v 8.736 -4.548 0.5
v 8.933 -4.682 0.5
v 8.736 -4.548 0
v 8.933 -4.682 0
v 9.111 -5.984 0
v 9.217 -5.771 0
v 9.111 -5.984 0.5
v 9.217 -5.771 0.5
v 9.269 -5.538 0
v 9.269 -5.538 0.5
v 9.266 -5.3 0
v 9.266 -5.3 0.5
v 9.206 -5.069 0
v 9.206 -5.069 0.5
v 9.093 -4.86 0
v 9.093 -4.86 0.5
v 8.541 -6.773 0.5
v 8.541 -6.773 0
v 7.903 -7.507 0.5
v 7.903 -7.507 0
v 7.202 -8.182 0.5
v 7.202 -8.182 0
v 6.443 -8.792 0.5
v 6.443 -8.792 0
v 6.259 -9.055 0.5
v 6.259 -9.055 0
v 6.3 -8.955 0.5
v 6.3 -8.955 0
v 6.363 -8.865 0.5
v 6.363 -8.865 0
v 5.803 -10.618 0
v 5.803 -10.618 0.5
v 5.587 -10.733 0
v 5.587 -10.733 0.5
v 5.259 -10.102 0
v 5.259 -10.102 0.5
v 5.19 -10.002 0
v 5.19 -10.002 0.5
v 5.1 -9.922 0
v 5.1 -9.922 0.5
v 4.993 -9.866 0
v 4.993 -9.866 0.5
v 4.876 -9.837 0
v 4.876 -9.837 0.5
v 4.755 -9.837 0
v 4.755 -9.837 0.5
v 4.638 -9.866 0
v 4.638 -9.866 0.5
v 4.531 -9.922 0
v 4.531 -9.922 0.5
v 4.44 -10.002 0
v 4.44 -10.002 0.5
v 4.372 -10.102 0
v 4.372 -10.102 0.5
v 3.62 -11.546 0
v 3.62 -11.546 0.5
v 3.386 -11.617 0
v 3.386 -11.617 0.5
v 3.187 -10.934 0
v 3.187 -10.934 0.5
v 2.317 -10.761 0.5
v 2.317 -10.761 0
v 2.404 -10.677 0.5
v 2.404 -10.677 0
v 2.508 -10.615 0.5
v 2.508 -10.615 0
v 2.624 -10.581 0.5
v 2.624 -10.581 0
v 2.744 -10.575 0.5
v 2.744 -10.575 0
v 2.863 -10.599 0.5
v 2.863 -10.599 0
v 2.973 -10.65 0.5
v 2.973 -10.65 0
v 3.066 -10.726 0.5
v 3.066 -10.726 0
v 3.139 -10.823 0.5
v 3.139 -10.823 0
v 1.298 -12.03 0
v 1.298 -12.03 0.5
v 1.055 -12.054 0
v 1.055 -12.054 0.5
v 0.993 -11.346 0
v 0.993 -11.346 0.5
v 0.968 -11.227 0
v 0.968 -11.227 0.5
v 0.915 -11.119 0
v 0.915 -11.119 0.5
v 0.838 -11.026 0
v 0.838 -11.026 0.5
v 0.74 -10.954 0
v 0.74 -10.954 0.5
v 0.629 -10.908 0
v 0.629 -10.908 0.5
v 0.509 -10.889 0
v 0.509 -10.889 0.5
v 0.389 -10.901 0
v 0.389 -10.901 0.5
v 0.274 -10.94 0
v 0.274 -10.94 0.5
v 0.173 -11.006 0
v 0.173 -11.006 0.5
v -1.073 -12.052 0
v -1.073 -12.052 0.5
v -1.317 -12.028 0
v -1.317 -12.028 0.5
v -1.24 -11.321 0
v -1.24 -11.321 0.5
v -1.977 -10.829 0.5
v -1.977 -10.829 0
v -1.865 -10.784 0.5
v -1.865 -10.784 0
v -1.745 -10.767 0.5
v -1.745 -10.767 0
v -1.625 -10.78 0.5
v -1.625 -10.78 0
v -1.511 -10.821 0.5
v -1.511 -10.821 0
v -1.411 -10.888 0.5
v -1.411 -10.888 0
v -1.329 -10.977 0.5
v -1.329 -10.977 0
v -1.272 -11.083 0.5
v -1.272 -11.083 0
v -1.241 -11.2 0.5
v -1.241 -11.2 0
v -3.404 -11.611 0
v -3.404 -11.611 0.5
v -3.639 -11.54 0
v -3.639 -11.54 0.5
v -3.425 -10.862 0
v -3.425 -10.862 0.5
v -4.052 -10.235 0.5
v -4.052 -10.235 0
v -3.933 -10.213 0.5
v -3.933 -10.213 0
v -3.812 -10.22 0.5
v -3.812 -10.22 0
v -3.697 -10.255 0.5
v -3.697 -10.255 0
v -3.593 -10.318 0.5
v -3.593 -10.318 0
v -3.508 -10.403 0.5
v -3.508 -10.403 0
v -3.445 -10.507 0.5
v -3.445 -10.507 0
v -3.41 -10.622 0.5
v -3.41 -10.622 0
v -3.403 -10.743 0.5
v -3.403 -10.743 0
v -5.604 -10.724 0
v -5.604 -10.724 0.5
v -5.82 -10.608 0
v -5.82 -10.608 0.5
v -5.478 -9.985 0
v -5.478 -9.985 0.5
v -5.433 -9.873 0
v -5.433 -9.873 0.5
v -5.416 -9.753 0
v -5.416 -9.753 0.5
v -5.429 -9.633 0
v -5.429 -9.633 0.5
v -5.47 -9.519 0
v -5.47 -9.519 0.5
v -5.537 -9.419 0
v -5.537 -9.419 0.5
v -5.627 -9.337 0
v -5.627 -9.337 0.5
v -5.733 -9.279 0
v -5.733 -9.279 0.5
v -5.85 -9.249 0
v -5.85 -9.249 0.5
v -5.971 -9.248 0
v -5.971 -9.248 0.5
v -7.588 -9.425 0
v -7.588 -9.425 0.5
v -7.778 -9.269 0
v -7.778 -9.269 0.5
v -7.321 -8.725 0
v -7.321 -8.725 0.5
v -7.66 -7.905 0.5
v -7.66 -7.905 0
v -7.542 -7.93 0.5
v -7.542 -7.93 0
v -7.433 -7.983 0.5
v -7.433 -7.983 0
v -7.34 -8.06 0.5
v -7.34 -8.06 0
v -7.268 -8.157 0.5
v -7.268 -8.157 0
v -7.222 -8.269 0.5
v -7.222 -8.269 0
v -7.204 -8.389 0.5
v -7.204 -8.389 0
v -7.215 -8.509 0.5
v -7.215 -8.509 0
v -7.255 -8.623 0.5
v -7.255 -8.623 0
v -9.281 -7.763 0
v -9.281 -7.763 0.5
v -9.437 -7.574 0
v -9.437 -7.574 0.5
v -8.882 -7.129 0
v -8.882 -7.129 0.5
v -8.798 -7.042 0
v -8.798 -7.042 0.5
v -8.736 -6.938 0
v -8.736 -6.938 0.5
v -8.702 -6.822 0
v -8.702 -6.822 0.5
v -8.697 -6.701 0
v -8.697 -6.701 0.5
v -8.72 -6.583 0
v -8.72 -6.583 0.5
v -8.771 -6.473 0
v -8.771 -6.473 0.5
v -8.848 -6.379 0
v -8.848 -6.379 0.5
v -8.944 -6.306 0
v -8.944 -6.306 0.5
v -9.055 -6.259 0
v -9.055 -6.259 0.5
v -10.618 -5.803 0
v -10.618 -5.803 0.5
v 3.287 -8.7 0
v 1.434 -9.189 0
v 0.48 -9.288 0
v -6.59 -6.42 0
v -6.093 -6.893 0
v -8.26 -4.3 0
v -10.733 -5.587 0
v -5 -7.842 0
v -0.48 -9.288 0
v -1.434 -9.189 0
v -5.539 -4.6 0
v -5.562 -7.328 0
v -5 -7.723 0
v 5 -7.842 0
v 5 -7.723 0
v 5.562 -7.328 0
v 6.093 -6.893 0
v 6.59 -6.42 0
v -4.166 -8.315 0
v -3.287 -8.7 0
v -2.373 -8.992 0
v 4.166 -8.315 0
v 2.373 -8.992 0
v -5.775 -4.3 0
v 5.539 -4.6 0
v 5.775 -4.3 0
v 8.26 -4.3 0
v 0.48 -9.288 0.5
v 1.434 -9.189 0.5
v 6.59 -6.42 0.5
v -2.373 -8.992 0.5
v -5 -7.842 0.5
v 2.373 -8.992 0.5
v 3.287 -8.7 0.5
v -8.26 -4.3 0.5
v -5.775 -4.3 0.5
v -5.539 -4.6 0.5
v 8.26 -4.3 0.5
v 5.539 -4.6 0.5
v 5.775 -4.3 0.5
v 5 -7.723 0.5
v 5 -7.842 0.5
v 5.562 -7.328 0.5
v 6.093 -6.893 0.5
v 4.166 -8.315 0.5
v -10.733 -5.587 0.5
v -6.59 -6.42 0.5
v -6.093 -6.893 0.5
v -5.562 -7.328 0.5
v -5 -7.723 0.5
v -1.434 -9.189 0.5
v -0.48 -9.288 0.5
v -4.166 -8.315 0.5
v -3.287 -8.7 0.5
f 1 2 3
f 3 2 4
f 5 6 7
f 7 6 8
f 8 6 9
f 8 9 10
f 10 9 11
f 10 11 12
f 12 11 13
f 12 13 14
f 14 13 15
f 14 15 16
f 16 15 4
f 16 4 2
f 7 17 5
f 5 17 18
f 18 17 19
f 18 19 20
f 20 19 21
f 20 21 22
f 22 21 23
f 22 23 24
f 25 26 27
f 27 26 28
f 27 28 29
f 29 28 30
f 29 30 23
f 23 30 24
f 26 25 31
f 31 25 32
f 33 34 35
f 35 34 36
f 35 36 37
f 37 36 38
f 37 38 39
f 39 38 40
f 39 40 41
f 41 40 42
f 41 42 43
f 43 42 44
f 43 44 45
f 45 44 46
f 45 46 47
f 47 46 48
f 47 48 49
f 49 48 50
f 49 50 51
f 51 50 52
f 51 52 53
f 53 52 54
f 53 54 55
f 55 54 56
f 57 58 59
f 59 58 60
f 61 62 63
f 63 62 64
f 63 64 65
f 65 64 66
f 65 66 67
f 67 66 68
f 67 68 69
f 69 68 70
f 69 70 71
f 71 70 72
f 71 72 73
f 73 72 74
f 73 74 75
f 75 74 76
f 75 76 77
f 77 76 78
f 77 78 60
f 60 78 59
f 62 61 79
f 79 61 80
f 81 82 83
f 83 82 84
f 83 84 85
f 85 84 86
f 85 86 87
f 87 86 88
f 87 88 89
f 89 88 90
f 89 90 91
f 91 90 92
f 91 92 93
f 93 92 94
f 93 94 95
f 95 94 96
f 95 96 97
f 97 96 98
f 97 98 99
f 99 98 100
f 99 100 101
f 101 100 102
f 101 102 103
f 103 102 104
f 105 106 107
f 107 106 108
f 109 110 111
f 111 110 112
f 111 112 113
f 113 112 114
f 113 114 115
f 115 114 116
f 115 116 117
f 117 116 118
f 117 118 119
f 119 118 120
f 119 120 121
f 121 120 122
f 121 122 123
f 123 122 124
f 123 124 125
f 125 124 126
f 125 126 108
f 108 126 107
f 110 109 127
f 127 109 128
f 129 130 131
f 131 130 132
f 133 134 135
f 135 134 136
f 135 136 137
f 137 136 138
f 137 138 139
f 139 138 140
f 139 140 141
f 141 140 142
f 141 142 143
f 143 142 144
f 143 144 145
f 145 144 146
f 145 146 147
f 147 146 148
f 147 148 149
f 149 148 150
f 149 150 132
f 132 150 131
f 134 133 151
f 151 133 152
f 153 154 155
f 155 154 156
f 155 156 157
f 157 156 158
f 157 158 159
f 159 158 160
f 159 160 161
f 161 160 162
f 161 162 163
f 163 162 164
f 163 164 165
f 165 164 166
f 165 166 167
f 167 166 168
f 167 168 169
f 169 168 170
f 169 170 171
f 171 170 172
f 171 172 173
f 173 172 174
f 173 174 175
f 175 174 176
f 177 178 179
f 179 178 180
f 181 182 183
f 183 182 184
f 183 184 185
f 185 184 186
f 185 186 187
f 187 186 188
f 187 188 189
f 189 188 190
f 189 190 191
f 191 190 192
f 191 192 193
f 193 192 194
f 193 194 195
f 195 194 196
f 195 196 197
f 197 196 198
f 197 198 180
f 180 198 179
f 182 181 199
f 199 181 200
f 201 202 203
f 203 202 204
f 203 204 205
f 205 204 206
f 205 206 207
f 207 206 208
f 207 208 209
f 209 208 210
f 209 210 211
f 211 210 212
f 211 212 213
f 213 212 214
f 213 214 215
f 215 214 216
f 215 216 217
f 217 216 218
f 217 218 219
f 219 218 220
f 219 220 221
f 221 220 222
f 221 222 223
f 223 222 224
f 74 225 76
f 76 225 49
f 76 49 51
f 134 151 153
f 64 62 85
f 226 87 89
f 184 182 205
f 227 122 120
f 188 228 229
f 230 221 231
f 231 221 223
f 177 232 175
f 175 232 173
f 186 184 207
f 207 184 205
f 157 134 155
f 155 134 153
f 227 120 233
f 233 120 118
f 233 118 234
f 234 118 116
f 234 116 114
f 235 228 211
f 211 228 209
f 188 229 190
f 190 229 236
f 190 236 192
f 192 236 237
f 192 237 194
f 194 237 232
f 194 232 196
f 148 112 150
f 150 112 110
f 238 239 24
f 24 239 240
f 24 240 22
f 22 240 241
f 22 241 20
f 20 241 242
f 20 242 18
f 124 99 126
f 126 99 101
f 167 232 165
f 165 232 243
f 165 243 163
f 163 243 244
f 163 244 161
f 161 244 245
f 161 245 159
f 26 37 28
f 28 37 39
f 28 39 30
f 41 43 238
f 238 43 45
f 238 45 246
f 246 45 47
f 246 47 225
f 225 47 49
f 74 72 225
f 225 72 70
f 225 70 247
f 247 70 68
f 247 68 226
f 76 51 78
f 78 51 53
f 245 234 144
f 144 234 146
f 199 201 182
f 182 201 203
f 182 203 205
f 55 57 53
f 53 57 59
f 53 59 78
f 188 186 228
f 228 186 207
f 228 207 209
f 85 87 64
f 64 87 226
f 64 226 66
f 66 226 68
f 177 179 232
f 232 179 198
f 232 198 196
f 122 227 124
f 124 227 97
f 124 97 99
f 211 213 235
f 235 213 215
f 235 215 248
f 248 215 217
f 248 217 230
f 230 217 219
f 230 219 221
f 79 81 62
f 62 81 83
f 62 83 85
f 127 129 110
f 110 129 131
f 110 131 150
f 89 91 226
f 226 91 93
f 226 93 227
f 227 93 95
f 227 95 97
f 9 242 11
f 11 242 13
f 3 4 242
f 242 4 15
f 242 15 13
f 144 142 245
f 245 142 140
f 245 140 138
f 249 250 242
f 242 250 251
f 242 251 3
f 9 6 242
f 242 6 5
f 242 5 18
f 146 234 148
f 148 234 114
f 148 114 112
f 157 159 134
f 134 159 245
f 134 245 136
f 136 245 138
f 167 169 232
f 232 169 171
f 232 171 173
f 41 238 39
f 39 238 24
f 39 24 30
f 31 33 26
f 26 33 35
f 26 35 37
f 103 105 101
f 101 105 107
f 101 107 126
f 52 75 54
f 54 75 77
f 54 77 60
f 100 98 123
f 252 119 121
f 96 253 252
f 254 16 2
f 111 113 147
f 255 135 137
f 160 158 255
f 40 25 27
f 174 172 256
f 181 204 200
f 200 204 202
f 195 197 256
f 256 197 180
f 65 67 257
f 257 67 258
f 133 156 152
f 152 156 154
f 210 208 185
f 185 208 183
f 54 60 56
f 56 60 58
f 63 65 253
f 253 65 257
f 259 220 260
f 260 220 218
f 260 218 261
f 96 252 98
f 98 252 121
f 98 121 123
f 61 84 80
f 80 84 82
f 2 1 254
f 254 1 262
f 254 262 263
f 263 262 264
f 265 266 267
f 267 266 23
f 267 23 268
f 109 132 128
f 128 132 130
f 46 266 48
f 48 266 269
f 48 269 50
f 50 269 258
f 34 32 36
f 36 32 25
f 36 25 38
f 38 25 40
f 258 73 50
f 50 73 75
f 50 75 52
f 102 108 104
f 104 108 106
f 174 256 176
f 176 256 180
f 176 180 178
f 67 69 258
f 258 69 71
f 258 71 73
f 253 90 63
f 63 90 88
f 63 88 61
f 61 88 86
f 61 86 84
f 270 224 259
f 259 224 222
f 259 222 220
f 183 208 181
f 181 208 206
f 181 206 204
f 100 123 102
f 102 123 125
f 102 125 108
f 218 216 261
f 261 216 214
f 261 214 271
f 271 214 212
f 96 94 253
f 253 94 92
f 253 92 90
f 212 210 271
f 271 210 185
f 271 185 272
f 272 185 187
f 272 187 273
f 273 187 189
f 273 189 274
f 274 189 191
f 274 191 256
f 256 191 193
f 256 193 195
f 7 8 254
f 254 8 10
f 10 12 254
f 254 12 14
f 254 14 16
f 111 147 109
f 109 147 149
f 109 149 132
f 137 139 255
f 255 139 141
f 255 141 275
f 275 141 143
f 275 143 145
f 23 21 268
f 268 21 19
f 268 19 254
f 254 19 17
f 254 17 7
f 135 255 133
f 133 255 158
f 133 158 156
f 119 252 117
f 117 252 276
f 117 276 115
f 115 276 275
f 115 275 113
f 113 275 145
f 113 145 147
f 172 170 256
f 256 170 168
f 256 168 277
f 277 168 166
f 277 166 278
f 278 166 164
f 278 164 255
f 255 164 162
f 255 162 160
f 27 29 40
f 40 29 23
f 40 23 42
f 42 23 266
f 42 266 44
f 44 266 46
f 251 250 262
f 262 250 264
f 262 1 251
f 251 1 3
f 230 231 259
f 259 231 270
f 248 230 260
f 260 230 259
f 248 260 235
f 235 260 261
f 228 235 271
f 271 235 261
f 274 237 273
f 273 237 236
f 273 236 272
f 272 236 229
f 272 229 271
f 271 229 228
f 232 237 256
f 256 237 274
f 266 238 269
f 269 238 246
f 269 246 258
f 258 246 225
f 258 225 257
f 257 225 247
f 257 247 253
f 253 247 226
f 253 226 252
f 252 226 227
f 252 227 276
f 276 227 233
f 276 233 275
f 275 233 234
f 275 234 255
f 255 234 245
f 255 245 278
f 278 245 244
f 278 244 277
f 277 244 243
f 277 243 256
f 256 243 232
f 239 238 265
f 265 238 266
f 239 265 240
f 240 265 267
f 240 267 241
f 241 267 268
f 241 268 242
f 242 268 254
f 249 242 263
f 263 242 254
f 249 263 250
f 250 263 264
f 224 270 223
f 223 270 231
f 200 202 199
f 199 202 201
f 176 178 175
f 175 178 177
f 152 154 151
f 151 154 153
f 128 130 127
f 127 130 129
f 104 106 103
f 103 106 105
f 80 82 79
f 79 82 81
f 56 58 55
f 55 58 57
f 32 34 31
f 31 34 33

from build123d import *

# Parameters (mm, degrees)
OTHER_10076_5_DEPTH = 0.5
CUT_EXTRUDE1_REACH  = 18.147


# Read off the part's stored shape, not the designer's step: 10076-5
with BuildPart() as part:
    # Other 10076-5 outline → Other 10076-5 (new body)
    with BuildSketch(Plane.XY):
        with BuildLine():
            ThreePointArc((7.573674013, -9.436602245), (7.668819519, -9.359444812), (7.763179028, -9.281328104))
            Line((7.763179028, -9.281328104), (7.919995926, -7.488902759))
            ThreePointArc((7.919995926, -7.488902759), (8.548470738, -6.76266575), (9.110578105, -5.983925684))
            ThreePointArc((9.110578105, -5.983925684), (9.242448569, -5.182849851), (8.736493865, -4.547930843))
            Line((8.736493865, -4.547930843), (8.260223146, -4.3))
            Line((8.260223146, -4.3), (5.774945887, -4.3))
            ThreePointArc((5.774945887, -4.3), (5.659072475, -4.451392897), (5.53923133, -4.5996648))
            Line((5.53923133, -4.5996648), (6.59, -6.419649523))
            ThreePointArc((6.59, -6.419649523), (5.831509763, -7.1157216), (5, -7.722693831))
            Line((5, -7.722693831), (5, -7.841555968))
            ThreePointArc((5, -7.841555968), (0, -9.3), (-5, -7.841555968))
            Line((-5, -7.841555968), (-5, -7.722693831))
            ThreePointArc((-5, -7.722693831), (-5.831509763, -7.1157216), (-6.59, -6.419649523))
            Line((-6.59, -6.419649523), (-5.53923133, -4.5996648))
            ThreePointArc((-5.53923133, -4.5996648), (-5.659072475, -4.451392897), (-5.774945887, -4.3))
            Line((-5.774945887, -4.3), (-8.260223146, -4.3))
            Line((-8.260223146, -4.3), (-10.732831081, -5.58715822))
            ThreePointArc((-10.732831081, -5.58715822), (-10.675718173, -5.6955282), (-10.617511084, -5.803314431))
            Line((-10.617511084, -5.803314431), (-9.055174855, -6.258693914))
            ThreePointArc((-9.055174855, -6.258693914), (-8.704696722, -6.64117368), (-8.882127626, -7.128661083))
            Line((-8.882127626, -7.128661083), (-9.436602245, -7.573674013))
            ThreePointArc((-9.436602245, -7.573674013), (-9.359444812, -7.668819519), (-9.281328104, -7.763179028))
            Line((-9.281328104, -7.763179028), (-7.660171598, -7.905011844))
            ThreePointArc((-7.660171598, -7.905011844), (-7.241809703, -8.211767477), (-7.320727248, -8.724502998))
            Line((-7.320727248, -8.724502998), (-7.777730077, -9.269137762))
            ThreePointArc((-7.777730077, -9.269137762), (-7.683493234, -9.347402405), (-7.588468891, -9.424709008))
            Line((-7.588468891, -9.424709008), (-5.970792243, -9.247544602))
            ThreePointArc((-5.970792243, -9.247544602), (-5.500623999, -9.466787654), (-5.477995427, -9.985067155))
            Line((-5.477995427, -9.985067155), (-5.819964104, -10.608393744))
            ThreePointArc((-5.819964104, -10.608393744), (-5.712269322, -10.666769858), (-5.603989074, -10.724052707))
            Line((-5.603989074, -10.724052707), (-4.05195869, -10.234699407))
            ThreePointArc((-4.05195869, -10.234699407), (-3.548052399, -10.358004491), (-3.424747314, -10.861910782))
            Line((-3.424747314, -10.861910782), (-3.638540174, -11.539975104))
            ThreePointArc((-3.638540174, -11.539975104), (-3.521526102, -11.576219327), (-3.404151099, -11.611277074))
            Line((-3.404151099, -11.611277074), (-1.977410637, -10.828540453))
            ThreePointArc((-1.977410637, -10.828540453), (-1.459131136, -10.851169025), (-1.239888083, -11.321337268))
            Line((-1.239888083, -11.321337268), (-1.317289186, -12.028081692))
            ThreePointArc((-1.317289186, -12.028081692), (-1.195452609, -12.04080118), (-1.073493507, -12.052286575))
            Line((-1.073493507, -12.052286575), (0.173128198, -11.006246762))
            ThreePointArc((0.173128198, -11.006246762), (0.685863719, -10.927329218), (0.992619352, -11.345691113))
            Line((0.992619352, -11.345691113), (1.054584487, -12.053955847))
            ThreePointArc((1.054584487, -12.053955847), (1.176561457, -12.042661796), (1.298417839, -12.030133462))
            Line((1.298417839, -12.030133462), (2.317013814, -10.760989181))
            ThreePointArc((2.317013814, -10.760989181), (2.804501216, -10.583558277), (3.186980982, -10.93403641))
            Line((3.186980982, -10.93403641), (3.38593107, -11.616603238))
            ThreePointArc((3.38593107, -11.616603238), (3.503360927, -11.581729673), (3.620431715, -11.545669067))
            Line((3.620431715, -11.545669067), (4.371857887, -10.10219282))
            ThreePointArc((4.371857887, -10.10219282), (4.815363304, -9.833067127), (5.258868721, -10.10219282))
            Line((5.258868721, -10.10219282), (5.58715822, -10.732831081))
            ThreePointArc((5.58715822, -10.732831081), (5.6955282, -10.675718173), (5.803314431, -10.617511084))
            Line((5.803314431, -10.617511084), (6.258693914, -9.055174855))
            ThreePointArc((6.258693914, -9.055174855), (6.64117368, -8.704696722), (7.128661083, -8.882127626))
            Line((7.128661083, -8.882127626), (7.573674013, -9.436602245))
        make_face()
    extrude(amount=OTHER_10076_5_DEPTH)

    # Sketch1 → Cut-Extrude1 (cut, up to next)
    with BuildSketch(Plane.XY.offset(0.5), mode=Mode.PRIVATE) as cut_extrude1_sk1:
        with BuildLine():
            Line((7.573674013, -9.436602245), (7.128661083, -8.882127626))
            ThreePointArc((7.128661083, -8.882127626), (6.804041546, -8.699374782), (6.443160998, -8.791795969))
            ThreePointArc((6.443160998, -8.791795969), (7.211064546, -8.173771964), (7.919995926, -7.488902759))
            Line((7.919995926, -7.488902759), (7.763179028, -9.281328104))
            ThreePointArc((7.763179028, -9.281328104), (7.668819519, -9.359444812), (7.573674013, -9.436602245))
        make_face()
    cut_extrude1_tool1 = extrude(cut_extrude1_sk1.sketch, amount=-CUT_EXTRUDE1_REACH, mode=Mode.PRIVATE) & part.part
    add(cut_extrude1_tool1.solids().sort_by_distance((7.456757, -8.533041, 0.5))[0], mode=Mode.SUBTRACT)


solid = part.part
